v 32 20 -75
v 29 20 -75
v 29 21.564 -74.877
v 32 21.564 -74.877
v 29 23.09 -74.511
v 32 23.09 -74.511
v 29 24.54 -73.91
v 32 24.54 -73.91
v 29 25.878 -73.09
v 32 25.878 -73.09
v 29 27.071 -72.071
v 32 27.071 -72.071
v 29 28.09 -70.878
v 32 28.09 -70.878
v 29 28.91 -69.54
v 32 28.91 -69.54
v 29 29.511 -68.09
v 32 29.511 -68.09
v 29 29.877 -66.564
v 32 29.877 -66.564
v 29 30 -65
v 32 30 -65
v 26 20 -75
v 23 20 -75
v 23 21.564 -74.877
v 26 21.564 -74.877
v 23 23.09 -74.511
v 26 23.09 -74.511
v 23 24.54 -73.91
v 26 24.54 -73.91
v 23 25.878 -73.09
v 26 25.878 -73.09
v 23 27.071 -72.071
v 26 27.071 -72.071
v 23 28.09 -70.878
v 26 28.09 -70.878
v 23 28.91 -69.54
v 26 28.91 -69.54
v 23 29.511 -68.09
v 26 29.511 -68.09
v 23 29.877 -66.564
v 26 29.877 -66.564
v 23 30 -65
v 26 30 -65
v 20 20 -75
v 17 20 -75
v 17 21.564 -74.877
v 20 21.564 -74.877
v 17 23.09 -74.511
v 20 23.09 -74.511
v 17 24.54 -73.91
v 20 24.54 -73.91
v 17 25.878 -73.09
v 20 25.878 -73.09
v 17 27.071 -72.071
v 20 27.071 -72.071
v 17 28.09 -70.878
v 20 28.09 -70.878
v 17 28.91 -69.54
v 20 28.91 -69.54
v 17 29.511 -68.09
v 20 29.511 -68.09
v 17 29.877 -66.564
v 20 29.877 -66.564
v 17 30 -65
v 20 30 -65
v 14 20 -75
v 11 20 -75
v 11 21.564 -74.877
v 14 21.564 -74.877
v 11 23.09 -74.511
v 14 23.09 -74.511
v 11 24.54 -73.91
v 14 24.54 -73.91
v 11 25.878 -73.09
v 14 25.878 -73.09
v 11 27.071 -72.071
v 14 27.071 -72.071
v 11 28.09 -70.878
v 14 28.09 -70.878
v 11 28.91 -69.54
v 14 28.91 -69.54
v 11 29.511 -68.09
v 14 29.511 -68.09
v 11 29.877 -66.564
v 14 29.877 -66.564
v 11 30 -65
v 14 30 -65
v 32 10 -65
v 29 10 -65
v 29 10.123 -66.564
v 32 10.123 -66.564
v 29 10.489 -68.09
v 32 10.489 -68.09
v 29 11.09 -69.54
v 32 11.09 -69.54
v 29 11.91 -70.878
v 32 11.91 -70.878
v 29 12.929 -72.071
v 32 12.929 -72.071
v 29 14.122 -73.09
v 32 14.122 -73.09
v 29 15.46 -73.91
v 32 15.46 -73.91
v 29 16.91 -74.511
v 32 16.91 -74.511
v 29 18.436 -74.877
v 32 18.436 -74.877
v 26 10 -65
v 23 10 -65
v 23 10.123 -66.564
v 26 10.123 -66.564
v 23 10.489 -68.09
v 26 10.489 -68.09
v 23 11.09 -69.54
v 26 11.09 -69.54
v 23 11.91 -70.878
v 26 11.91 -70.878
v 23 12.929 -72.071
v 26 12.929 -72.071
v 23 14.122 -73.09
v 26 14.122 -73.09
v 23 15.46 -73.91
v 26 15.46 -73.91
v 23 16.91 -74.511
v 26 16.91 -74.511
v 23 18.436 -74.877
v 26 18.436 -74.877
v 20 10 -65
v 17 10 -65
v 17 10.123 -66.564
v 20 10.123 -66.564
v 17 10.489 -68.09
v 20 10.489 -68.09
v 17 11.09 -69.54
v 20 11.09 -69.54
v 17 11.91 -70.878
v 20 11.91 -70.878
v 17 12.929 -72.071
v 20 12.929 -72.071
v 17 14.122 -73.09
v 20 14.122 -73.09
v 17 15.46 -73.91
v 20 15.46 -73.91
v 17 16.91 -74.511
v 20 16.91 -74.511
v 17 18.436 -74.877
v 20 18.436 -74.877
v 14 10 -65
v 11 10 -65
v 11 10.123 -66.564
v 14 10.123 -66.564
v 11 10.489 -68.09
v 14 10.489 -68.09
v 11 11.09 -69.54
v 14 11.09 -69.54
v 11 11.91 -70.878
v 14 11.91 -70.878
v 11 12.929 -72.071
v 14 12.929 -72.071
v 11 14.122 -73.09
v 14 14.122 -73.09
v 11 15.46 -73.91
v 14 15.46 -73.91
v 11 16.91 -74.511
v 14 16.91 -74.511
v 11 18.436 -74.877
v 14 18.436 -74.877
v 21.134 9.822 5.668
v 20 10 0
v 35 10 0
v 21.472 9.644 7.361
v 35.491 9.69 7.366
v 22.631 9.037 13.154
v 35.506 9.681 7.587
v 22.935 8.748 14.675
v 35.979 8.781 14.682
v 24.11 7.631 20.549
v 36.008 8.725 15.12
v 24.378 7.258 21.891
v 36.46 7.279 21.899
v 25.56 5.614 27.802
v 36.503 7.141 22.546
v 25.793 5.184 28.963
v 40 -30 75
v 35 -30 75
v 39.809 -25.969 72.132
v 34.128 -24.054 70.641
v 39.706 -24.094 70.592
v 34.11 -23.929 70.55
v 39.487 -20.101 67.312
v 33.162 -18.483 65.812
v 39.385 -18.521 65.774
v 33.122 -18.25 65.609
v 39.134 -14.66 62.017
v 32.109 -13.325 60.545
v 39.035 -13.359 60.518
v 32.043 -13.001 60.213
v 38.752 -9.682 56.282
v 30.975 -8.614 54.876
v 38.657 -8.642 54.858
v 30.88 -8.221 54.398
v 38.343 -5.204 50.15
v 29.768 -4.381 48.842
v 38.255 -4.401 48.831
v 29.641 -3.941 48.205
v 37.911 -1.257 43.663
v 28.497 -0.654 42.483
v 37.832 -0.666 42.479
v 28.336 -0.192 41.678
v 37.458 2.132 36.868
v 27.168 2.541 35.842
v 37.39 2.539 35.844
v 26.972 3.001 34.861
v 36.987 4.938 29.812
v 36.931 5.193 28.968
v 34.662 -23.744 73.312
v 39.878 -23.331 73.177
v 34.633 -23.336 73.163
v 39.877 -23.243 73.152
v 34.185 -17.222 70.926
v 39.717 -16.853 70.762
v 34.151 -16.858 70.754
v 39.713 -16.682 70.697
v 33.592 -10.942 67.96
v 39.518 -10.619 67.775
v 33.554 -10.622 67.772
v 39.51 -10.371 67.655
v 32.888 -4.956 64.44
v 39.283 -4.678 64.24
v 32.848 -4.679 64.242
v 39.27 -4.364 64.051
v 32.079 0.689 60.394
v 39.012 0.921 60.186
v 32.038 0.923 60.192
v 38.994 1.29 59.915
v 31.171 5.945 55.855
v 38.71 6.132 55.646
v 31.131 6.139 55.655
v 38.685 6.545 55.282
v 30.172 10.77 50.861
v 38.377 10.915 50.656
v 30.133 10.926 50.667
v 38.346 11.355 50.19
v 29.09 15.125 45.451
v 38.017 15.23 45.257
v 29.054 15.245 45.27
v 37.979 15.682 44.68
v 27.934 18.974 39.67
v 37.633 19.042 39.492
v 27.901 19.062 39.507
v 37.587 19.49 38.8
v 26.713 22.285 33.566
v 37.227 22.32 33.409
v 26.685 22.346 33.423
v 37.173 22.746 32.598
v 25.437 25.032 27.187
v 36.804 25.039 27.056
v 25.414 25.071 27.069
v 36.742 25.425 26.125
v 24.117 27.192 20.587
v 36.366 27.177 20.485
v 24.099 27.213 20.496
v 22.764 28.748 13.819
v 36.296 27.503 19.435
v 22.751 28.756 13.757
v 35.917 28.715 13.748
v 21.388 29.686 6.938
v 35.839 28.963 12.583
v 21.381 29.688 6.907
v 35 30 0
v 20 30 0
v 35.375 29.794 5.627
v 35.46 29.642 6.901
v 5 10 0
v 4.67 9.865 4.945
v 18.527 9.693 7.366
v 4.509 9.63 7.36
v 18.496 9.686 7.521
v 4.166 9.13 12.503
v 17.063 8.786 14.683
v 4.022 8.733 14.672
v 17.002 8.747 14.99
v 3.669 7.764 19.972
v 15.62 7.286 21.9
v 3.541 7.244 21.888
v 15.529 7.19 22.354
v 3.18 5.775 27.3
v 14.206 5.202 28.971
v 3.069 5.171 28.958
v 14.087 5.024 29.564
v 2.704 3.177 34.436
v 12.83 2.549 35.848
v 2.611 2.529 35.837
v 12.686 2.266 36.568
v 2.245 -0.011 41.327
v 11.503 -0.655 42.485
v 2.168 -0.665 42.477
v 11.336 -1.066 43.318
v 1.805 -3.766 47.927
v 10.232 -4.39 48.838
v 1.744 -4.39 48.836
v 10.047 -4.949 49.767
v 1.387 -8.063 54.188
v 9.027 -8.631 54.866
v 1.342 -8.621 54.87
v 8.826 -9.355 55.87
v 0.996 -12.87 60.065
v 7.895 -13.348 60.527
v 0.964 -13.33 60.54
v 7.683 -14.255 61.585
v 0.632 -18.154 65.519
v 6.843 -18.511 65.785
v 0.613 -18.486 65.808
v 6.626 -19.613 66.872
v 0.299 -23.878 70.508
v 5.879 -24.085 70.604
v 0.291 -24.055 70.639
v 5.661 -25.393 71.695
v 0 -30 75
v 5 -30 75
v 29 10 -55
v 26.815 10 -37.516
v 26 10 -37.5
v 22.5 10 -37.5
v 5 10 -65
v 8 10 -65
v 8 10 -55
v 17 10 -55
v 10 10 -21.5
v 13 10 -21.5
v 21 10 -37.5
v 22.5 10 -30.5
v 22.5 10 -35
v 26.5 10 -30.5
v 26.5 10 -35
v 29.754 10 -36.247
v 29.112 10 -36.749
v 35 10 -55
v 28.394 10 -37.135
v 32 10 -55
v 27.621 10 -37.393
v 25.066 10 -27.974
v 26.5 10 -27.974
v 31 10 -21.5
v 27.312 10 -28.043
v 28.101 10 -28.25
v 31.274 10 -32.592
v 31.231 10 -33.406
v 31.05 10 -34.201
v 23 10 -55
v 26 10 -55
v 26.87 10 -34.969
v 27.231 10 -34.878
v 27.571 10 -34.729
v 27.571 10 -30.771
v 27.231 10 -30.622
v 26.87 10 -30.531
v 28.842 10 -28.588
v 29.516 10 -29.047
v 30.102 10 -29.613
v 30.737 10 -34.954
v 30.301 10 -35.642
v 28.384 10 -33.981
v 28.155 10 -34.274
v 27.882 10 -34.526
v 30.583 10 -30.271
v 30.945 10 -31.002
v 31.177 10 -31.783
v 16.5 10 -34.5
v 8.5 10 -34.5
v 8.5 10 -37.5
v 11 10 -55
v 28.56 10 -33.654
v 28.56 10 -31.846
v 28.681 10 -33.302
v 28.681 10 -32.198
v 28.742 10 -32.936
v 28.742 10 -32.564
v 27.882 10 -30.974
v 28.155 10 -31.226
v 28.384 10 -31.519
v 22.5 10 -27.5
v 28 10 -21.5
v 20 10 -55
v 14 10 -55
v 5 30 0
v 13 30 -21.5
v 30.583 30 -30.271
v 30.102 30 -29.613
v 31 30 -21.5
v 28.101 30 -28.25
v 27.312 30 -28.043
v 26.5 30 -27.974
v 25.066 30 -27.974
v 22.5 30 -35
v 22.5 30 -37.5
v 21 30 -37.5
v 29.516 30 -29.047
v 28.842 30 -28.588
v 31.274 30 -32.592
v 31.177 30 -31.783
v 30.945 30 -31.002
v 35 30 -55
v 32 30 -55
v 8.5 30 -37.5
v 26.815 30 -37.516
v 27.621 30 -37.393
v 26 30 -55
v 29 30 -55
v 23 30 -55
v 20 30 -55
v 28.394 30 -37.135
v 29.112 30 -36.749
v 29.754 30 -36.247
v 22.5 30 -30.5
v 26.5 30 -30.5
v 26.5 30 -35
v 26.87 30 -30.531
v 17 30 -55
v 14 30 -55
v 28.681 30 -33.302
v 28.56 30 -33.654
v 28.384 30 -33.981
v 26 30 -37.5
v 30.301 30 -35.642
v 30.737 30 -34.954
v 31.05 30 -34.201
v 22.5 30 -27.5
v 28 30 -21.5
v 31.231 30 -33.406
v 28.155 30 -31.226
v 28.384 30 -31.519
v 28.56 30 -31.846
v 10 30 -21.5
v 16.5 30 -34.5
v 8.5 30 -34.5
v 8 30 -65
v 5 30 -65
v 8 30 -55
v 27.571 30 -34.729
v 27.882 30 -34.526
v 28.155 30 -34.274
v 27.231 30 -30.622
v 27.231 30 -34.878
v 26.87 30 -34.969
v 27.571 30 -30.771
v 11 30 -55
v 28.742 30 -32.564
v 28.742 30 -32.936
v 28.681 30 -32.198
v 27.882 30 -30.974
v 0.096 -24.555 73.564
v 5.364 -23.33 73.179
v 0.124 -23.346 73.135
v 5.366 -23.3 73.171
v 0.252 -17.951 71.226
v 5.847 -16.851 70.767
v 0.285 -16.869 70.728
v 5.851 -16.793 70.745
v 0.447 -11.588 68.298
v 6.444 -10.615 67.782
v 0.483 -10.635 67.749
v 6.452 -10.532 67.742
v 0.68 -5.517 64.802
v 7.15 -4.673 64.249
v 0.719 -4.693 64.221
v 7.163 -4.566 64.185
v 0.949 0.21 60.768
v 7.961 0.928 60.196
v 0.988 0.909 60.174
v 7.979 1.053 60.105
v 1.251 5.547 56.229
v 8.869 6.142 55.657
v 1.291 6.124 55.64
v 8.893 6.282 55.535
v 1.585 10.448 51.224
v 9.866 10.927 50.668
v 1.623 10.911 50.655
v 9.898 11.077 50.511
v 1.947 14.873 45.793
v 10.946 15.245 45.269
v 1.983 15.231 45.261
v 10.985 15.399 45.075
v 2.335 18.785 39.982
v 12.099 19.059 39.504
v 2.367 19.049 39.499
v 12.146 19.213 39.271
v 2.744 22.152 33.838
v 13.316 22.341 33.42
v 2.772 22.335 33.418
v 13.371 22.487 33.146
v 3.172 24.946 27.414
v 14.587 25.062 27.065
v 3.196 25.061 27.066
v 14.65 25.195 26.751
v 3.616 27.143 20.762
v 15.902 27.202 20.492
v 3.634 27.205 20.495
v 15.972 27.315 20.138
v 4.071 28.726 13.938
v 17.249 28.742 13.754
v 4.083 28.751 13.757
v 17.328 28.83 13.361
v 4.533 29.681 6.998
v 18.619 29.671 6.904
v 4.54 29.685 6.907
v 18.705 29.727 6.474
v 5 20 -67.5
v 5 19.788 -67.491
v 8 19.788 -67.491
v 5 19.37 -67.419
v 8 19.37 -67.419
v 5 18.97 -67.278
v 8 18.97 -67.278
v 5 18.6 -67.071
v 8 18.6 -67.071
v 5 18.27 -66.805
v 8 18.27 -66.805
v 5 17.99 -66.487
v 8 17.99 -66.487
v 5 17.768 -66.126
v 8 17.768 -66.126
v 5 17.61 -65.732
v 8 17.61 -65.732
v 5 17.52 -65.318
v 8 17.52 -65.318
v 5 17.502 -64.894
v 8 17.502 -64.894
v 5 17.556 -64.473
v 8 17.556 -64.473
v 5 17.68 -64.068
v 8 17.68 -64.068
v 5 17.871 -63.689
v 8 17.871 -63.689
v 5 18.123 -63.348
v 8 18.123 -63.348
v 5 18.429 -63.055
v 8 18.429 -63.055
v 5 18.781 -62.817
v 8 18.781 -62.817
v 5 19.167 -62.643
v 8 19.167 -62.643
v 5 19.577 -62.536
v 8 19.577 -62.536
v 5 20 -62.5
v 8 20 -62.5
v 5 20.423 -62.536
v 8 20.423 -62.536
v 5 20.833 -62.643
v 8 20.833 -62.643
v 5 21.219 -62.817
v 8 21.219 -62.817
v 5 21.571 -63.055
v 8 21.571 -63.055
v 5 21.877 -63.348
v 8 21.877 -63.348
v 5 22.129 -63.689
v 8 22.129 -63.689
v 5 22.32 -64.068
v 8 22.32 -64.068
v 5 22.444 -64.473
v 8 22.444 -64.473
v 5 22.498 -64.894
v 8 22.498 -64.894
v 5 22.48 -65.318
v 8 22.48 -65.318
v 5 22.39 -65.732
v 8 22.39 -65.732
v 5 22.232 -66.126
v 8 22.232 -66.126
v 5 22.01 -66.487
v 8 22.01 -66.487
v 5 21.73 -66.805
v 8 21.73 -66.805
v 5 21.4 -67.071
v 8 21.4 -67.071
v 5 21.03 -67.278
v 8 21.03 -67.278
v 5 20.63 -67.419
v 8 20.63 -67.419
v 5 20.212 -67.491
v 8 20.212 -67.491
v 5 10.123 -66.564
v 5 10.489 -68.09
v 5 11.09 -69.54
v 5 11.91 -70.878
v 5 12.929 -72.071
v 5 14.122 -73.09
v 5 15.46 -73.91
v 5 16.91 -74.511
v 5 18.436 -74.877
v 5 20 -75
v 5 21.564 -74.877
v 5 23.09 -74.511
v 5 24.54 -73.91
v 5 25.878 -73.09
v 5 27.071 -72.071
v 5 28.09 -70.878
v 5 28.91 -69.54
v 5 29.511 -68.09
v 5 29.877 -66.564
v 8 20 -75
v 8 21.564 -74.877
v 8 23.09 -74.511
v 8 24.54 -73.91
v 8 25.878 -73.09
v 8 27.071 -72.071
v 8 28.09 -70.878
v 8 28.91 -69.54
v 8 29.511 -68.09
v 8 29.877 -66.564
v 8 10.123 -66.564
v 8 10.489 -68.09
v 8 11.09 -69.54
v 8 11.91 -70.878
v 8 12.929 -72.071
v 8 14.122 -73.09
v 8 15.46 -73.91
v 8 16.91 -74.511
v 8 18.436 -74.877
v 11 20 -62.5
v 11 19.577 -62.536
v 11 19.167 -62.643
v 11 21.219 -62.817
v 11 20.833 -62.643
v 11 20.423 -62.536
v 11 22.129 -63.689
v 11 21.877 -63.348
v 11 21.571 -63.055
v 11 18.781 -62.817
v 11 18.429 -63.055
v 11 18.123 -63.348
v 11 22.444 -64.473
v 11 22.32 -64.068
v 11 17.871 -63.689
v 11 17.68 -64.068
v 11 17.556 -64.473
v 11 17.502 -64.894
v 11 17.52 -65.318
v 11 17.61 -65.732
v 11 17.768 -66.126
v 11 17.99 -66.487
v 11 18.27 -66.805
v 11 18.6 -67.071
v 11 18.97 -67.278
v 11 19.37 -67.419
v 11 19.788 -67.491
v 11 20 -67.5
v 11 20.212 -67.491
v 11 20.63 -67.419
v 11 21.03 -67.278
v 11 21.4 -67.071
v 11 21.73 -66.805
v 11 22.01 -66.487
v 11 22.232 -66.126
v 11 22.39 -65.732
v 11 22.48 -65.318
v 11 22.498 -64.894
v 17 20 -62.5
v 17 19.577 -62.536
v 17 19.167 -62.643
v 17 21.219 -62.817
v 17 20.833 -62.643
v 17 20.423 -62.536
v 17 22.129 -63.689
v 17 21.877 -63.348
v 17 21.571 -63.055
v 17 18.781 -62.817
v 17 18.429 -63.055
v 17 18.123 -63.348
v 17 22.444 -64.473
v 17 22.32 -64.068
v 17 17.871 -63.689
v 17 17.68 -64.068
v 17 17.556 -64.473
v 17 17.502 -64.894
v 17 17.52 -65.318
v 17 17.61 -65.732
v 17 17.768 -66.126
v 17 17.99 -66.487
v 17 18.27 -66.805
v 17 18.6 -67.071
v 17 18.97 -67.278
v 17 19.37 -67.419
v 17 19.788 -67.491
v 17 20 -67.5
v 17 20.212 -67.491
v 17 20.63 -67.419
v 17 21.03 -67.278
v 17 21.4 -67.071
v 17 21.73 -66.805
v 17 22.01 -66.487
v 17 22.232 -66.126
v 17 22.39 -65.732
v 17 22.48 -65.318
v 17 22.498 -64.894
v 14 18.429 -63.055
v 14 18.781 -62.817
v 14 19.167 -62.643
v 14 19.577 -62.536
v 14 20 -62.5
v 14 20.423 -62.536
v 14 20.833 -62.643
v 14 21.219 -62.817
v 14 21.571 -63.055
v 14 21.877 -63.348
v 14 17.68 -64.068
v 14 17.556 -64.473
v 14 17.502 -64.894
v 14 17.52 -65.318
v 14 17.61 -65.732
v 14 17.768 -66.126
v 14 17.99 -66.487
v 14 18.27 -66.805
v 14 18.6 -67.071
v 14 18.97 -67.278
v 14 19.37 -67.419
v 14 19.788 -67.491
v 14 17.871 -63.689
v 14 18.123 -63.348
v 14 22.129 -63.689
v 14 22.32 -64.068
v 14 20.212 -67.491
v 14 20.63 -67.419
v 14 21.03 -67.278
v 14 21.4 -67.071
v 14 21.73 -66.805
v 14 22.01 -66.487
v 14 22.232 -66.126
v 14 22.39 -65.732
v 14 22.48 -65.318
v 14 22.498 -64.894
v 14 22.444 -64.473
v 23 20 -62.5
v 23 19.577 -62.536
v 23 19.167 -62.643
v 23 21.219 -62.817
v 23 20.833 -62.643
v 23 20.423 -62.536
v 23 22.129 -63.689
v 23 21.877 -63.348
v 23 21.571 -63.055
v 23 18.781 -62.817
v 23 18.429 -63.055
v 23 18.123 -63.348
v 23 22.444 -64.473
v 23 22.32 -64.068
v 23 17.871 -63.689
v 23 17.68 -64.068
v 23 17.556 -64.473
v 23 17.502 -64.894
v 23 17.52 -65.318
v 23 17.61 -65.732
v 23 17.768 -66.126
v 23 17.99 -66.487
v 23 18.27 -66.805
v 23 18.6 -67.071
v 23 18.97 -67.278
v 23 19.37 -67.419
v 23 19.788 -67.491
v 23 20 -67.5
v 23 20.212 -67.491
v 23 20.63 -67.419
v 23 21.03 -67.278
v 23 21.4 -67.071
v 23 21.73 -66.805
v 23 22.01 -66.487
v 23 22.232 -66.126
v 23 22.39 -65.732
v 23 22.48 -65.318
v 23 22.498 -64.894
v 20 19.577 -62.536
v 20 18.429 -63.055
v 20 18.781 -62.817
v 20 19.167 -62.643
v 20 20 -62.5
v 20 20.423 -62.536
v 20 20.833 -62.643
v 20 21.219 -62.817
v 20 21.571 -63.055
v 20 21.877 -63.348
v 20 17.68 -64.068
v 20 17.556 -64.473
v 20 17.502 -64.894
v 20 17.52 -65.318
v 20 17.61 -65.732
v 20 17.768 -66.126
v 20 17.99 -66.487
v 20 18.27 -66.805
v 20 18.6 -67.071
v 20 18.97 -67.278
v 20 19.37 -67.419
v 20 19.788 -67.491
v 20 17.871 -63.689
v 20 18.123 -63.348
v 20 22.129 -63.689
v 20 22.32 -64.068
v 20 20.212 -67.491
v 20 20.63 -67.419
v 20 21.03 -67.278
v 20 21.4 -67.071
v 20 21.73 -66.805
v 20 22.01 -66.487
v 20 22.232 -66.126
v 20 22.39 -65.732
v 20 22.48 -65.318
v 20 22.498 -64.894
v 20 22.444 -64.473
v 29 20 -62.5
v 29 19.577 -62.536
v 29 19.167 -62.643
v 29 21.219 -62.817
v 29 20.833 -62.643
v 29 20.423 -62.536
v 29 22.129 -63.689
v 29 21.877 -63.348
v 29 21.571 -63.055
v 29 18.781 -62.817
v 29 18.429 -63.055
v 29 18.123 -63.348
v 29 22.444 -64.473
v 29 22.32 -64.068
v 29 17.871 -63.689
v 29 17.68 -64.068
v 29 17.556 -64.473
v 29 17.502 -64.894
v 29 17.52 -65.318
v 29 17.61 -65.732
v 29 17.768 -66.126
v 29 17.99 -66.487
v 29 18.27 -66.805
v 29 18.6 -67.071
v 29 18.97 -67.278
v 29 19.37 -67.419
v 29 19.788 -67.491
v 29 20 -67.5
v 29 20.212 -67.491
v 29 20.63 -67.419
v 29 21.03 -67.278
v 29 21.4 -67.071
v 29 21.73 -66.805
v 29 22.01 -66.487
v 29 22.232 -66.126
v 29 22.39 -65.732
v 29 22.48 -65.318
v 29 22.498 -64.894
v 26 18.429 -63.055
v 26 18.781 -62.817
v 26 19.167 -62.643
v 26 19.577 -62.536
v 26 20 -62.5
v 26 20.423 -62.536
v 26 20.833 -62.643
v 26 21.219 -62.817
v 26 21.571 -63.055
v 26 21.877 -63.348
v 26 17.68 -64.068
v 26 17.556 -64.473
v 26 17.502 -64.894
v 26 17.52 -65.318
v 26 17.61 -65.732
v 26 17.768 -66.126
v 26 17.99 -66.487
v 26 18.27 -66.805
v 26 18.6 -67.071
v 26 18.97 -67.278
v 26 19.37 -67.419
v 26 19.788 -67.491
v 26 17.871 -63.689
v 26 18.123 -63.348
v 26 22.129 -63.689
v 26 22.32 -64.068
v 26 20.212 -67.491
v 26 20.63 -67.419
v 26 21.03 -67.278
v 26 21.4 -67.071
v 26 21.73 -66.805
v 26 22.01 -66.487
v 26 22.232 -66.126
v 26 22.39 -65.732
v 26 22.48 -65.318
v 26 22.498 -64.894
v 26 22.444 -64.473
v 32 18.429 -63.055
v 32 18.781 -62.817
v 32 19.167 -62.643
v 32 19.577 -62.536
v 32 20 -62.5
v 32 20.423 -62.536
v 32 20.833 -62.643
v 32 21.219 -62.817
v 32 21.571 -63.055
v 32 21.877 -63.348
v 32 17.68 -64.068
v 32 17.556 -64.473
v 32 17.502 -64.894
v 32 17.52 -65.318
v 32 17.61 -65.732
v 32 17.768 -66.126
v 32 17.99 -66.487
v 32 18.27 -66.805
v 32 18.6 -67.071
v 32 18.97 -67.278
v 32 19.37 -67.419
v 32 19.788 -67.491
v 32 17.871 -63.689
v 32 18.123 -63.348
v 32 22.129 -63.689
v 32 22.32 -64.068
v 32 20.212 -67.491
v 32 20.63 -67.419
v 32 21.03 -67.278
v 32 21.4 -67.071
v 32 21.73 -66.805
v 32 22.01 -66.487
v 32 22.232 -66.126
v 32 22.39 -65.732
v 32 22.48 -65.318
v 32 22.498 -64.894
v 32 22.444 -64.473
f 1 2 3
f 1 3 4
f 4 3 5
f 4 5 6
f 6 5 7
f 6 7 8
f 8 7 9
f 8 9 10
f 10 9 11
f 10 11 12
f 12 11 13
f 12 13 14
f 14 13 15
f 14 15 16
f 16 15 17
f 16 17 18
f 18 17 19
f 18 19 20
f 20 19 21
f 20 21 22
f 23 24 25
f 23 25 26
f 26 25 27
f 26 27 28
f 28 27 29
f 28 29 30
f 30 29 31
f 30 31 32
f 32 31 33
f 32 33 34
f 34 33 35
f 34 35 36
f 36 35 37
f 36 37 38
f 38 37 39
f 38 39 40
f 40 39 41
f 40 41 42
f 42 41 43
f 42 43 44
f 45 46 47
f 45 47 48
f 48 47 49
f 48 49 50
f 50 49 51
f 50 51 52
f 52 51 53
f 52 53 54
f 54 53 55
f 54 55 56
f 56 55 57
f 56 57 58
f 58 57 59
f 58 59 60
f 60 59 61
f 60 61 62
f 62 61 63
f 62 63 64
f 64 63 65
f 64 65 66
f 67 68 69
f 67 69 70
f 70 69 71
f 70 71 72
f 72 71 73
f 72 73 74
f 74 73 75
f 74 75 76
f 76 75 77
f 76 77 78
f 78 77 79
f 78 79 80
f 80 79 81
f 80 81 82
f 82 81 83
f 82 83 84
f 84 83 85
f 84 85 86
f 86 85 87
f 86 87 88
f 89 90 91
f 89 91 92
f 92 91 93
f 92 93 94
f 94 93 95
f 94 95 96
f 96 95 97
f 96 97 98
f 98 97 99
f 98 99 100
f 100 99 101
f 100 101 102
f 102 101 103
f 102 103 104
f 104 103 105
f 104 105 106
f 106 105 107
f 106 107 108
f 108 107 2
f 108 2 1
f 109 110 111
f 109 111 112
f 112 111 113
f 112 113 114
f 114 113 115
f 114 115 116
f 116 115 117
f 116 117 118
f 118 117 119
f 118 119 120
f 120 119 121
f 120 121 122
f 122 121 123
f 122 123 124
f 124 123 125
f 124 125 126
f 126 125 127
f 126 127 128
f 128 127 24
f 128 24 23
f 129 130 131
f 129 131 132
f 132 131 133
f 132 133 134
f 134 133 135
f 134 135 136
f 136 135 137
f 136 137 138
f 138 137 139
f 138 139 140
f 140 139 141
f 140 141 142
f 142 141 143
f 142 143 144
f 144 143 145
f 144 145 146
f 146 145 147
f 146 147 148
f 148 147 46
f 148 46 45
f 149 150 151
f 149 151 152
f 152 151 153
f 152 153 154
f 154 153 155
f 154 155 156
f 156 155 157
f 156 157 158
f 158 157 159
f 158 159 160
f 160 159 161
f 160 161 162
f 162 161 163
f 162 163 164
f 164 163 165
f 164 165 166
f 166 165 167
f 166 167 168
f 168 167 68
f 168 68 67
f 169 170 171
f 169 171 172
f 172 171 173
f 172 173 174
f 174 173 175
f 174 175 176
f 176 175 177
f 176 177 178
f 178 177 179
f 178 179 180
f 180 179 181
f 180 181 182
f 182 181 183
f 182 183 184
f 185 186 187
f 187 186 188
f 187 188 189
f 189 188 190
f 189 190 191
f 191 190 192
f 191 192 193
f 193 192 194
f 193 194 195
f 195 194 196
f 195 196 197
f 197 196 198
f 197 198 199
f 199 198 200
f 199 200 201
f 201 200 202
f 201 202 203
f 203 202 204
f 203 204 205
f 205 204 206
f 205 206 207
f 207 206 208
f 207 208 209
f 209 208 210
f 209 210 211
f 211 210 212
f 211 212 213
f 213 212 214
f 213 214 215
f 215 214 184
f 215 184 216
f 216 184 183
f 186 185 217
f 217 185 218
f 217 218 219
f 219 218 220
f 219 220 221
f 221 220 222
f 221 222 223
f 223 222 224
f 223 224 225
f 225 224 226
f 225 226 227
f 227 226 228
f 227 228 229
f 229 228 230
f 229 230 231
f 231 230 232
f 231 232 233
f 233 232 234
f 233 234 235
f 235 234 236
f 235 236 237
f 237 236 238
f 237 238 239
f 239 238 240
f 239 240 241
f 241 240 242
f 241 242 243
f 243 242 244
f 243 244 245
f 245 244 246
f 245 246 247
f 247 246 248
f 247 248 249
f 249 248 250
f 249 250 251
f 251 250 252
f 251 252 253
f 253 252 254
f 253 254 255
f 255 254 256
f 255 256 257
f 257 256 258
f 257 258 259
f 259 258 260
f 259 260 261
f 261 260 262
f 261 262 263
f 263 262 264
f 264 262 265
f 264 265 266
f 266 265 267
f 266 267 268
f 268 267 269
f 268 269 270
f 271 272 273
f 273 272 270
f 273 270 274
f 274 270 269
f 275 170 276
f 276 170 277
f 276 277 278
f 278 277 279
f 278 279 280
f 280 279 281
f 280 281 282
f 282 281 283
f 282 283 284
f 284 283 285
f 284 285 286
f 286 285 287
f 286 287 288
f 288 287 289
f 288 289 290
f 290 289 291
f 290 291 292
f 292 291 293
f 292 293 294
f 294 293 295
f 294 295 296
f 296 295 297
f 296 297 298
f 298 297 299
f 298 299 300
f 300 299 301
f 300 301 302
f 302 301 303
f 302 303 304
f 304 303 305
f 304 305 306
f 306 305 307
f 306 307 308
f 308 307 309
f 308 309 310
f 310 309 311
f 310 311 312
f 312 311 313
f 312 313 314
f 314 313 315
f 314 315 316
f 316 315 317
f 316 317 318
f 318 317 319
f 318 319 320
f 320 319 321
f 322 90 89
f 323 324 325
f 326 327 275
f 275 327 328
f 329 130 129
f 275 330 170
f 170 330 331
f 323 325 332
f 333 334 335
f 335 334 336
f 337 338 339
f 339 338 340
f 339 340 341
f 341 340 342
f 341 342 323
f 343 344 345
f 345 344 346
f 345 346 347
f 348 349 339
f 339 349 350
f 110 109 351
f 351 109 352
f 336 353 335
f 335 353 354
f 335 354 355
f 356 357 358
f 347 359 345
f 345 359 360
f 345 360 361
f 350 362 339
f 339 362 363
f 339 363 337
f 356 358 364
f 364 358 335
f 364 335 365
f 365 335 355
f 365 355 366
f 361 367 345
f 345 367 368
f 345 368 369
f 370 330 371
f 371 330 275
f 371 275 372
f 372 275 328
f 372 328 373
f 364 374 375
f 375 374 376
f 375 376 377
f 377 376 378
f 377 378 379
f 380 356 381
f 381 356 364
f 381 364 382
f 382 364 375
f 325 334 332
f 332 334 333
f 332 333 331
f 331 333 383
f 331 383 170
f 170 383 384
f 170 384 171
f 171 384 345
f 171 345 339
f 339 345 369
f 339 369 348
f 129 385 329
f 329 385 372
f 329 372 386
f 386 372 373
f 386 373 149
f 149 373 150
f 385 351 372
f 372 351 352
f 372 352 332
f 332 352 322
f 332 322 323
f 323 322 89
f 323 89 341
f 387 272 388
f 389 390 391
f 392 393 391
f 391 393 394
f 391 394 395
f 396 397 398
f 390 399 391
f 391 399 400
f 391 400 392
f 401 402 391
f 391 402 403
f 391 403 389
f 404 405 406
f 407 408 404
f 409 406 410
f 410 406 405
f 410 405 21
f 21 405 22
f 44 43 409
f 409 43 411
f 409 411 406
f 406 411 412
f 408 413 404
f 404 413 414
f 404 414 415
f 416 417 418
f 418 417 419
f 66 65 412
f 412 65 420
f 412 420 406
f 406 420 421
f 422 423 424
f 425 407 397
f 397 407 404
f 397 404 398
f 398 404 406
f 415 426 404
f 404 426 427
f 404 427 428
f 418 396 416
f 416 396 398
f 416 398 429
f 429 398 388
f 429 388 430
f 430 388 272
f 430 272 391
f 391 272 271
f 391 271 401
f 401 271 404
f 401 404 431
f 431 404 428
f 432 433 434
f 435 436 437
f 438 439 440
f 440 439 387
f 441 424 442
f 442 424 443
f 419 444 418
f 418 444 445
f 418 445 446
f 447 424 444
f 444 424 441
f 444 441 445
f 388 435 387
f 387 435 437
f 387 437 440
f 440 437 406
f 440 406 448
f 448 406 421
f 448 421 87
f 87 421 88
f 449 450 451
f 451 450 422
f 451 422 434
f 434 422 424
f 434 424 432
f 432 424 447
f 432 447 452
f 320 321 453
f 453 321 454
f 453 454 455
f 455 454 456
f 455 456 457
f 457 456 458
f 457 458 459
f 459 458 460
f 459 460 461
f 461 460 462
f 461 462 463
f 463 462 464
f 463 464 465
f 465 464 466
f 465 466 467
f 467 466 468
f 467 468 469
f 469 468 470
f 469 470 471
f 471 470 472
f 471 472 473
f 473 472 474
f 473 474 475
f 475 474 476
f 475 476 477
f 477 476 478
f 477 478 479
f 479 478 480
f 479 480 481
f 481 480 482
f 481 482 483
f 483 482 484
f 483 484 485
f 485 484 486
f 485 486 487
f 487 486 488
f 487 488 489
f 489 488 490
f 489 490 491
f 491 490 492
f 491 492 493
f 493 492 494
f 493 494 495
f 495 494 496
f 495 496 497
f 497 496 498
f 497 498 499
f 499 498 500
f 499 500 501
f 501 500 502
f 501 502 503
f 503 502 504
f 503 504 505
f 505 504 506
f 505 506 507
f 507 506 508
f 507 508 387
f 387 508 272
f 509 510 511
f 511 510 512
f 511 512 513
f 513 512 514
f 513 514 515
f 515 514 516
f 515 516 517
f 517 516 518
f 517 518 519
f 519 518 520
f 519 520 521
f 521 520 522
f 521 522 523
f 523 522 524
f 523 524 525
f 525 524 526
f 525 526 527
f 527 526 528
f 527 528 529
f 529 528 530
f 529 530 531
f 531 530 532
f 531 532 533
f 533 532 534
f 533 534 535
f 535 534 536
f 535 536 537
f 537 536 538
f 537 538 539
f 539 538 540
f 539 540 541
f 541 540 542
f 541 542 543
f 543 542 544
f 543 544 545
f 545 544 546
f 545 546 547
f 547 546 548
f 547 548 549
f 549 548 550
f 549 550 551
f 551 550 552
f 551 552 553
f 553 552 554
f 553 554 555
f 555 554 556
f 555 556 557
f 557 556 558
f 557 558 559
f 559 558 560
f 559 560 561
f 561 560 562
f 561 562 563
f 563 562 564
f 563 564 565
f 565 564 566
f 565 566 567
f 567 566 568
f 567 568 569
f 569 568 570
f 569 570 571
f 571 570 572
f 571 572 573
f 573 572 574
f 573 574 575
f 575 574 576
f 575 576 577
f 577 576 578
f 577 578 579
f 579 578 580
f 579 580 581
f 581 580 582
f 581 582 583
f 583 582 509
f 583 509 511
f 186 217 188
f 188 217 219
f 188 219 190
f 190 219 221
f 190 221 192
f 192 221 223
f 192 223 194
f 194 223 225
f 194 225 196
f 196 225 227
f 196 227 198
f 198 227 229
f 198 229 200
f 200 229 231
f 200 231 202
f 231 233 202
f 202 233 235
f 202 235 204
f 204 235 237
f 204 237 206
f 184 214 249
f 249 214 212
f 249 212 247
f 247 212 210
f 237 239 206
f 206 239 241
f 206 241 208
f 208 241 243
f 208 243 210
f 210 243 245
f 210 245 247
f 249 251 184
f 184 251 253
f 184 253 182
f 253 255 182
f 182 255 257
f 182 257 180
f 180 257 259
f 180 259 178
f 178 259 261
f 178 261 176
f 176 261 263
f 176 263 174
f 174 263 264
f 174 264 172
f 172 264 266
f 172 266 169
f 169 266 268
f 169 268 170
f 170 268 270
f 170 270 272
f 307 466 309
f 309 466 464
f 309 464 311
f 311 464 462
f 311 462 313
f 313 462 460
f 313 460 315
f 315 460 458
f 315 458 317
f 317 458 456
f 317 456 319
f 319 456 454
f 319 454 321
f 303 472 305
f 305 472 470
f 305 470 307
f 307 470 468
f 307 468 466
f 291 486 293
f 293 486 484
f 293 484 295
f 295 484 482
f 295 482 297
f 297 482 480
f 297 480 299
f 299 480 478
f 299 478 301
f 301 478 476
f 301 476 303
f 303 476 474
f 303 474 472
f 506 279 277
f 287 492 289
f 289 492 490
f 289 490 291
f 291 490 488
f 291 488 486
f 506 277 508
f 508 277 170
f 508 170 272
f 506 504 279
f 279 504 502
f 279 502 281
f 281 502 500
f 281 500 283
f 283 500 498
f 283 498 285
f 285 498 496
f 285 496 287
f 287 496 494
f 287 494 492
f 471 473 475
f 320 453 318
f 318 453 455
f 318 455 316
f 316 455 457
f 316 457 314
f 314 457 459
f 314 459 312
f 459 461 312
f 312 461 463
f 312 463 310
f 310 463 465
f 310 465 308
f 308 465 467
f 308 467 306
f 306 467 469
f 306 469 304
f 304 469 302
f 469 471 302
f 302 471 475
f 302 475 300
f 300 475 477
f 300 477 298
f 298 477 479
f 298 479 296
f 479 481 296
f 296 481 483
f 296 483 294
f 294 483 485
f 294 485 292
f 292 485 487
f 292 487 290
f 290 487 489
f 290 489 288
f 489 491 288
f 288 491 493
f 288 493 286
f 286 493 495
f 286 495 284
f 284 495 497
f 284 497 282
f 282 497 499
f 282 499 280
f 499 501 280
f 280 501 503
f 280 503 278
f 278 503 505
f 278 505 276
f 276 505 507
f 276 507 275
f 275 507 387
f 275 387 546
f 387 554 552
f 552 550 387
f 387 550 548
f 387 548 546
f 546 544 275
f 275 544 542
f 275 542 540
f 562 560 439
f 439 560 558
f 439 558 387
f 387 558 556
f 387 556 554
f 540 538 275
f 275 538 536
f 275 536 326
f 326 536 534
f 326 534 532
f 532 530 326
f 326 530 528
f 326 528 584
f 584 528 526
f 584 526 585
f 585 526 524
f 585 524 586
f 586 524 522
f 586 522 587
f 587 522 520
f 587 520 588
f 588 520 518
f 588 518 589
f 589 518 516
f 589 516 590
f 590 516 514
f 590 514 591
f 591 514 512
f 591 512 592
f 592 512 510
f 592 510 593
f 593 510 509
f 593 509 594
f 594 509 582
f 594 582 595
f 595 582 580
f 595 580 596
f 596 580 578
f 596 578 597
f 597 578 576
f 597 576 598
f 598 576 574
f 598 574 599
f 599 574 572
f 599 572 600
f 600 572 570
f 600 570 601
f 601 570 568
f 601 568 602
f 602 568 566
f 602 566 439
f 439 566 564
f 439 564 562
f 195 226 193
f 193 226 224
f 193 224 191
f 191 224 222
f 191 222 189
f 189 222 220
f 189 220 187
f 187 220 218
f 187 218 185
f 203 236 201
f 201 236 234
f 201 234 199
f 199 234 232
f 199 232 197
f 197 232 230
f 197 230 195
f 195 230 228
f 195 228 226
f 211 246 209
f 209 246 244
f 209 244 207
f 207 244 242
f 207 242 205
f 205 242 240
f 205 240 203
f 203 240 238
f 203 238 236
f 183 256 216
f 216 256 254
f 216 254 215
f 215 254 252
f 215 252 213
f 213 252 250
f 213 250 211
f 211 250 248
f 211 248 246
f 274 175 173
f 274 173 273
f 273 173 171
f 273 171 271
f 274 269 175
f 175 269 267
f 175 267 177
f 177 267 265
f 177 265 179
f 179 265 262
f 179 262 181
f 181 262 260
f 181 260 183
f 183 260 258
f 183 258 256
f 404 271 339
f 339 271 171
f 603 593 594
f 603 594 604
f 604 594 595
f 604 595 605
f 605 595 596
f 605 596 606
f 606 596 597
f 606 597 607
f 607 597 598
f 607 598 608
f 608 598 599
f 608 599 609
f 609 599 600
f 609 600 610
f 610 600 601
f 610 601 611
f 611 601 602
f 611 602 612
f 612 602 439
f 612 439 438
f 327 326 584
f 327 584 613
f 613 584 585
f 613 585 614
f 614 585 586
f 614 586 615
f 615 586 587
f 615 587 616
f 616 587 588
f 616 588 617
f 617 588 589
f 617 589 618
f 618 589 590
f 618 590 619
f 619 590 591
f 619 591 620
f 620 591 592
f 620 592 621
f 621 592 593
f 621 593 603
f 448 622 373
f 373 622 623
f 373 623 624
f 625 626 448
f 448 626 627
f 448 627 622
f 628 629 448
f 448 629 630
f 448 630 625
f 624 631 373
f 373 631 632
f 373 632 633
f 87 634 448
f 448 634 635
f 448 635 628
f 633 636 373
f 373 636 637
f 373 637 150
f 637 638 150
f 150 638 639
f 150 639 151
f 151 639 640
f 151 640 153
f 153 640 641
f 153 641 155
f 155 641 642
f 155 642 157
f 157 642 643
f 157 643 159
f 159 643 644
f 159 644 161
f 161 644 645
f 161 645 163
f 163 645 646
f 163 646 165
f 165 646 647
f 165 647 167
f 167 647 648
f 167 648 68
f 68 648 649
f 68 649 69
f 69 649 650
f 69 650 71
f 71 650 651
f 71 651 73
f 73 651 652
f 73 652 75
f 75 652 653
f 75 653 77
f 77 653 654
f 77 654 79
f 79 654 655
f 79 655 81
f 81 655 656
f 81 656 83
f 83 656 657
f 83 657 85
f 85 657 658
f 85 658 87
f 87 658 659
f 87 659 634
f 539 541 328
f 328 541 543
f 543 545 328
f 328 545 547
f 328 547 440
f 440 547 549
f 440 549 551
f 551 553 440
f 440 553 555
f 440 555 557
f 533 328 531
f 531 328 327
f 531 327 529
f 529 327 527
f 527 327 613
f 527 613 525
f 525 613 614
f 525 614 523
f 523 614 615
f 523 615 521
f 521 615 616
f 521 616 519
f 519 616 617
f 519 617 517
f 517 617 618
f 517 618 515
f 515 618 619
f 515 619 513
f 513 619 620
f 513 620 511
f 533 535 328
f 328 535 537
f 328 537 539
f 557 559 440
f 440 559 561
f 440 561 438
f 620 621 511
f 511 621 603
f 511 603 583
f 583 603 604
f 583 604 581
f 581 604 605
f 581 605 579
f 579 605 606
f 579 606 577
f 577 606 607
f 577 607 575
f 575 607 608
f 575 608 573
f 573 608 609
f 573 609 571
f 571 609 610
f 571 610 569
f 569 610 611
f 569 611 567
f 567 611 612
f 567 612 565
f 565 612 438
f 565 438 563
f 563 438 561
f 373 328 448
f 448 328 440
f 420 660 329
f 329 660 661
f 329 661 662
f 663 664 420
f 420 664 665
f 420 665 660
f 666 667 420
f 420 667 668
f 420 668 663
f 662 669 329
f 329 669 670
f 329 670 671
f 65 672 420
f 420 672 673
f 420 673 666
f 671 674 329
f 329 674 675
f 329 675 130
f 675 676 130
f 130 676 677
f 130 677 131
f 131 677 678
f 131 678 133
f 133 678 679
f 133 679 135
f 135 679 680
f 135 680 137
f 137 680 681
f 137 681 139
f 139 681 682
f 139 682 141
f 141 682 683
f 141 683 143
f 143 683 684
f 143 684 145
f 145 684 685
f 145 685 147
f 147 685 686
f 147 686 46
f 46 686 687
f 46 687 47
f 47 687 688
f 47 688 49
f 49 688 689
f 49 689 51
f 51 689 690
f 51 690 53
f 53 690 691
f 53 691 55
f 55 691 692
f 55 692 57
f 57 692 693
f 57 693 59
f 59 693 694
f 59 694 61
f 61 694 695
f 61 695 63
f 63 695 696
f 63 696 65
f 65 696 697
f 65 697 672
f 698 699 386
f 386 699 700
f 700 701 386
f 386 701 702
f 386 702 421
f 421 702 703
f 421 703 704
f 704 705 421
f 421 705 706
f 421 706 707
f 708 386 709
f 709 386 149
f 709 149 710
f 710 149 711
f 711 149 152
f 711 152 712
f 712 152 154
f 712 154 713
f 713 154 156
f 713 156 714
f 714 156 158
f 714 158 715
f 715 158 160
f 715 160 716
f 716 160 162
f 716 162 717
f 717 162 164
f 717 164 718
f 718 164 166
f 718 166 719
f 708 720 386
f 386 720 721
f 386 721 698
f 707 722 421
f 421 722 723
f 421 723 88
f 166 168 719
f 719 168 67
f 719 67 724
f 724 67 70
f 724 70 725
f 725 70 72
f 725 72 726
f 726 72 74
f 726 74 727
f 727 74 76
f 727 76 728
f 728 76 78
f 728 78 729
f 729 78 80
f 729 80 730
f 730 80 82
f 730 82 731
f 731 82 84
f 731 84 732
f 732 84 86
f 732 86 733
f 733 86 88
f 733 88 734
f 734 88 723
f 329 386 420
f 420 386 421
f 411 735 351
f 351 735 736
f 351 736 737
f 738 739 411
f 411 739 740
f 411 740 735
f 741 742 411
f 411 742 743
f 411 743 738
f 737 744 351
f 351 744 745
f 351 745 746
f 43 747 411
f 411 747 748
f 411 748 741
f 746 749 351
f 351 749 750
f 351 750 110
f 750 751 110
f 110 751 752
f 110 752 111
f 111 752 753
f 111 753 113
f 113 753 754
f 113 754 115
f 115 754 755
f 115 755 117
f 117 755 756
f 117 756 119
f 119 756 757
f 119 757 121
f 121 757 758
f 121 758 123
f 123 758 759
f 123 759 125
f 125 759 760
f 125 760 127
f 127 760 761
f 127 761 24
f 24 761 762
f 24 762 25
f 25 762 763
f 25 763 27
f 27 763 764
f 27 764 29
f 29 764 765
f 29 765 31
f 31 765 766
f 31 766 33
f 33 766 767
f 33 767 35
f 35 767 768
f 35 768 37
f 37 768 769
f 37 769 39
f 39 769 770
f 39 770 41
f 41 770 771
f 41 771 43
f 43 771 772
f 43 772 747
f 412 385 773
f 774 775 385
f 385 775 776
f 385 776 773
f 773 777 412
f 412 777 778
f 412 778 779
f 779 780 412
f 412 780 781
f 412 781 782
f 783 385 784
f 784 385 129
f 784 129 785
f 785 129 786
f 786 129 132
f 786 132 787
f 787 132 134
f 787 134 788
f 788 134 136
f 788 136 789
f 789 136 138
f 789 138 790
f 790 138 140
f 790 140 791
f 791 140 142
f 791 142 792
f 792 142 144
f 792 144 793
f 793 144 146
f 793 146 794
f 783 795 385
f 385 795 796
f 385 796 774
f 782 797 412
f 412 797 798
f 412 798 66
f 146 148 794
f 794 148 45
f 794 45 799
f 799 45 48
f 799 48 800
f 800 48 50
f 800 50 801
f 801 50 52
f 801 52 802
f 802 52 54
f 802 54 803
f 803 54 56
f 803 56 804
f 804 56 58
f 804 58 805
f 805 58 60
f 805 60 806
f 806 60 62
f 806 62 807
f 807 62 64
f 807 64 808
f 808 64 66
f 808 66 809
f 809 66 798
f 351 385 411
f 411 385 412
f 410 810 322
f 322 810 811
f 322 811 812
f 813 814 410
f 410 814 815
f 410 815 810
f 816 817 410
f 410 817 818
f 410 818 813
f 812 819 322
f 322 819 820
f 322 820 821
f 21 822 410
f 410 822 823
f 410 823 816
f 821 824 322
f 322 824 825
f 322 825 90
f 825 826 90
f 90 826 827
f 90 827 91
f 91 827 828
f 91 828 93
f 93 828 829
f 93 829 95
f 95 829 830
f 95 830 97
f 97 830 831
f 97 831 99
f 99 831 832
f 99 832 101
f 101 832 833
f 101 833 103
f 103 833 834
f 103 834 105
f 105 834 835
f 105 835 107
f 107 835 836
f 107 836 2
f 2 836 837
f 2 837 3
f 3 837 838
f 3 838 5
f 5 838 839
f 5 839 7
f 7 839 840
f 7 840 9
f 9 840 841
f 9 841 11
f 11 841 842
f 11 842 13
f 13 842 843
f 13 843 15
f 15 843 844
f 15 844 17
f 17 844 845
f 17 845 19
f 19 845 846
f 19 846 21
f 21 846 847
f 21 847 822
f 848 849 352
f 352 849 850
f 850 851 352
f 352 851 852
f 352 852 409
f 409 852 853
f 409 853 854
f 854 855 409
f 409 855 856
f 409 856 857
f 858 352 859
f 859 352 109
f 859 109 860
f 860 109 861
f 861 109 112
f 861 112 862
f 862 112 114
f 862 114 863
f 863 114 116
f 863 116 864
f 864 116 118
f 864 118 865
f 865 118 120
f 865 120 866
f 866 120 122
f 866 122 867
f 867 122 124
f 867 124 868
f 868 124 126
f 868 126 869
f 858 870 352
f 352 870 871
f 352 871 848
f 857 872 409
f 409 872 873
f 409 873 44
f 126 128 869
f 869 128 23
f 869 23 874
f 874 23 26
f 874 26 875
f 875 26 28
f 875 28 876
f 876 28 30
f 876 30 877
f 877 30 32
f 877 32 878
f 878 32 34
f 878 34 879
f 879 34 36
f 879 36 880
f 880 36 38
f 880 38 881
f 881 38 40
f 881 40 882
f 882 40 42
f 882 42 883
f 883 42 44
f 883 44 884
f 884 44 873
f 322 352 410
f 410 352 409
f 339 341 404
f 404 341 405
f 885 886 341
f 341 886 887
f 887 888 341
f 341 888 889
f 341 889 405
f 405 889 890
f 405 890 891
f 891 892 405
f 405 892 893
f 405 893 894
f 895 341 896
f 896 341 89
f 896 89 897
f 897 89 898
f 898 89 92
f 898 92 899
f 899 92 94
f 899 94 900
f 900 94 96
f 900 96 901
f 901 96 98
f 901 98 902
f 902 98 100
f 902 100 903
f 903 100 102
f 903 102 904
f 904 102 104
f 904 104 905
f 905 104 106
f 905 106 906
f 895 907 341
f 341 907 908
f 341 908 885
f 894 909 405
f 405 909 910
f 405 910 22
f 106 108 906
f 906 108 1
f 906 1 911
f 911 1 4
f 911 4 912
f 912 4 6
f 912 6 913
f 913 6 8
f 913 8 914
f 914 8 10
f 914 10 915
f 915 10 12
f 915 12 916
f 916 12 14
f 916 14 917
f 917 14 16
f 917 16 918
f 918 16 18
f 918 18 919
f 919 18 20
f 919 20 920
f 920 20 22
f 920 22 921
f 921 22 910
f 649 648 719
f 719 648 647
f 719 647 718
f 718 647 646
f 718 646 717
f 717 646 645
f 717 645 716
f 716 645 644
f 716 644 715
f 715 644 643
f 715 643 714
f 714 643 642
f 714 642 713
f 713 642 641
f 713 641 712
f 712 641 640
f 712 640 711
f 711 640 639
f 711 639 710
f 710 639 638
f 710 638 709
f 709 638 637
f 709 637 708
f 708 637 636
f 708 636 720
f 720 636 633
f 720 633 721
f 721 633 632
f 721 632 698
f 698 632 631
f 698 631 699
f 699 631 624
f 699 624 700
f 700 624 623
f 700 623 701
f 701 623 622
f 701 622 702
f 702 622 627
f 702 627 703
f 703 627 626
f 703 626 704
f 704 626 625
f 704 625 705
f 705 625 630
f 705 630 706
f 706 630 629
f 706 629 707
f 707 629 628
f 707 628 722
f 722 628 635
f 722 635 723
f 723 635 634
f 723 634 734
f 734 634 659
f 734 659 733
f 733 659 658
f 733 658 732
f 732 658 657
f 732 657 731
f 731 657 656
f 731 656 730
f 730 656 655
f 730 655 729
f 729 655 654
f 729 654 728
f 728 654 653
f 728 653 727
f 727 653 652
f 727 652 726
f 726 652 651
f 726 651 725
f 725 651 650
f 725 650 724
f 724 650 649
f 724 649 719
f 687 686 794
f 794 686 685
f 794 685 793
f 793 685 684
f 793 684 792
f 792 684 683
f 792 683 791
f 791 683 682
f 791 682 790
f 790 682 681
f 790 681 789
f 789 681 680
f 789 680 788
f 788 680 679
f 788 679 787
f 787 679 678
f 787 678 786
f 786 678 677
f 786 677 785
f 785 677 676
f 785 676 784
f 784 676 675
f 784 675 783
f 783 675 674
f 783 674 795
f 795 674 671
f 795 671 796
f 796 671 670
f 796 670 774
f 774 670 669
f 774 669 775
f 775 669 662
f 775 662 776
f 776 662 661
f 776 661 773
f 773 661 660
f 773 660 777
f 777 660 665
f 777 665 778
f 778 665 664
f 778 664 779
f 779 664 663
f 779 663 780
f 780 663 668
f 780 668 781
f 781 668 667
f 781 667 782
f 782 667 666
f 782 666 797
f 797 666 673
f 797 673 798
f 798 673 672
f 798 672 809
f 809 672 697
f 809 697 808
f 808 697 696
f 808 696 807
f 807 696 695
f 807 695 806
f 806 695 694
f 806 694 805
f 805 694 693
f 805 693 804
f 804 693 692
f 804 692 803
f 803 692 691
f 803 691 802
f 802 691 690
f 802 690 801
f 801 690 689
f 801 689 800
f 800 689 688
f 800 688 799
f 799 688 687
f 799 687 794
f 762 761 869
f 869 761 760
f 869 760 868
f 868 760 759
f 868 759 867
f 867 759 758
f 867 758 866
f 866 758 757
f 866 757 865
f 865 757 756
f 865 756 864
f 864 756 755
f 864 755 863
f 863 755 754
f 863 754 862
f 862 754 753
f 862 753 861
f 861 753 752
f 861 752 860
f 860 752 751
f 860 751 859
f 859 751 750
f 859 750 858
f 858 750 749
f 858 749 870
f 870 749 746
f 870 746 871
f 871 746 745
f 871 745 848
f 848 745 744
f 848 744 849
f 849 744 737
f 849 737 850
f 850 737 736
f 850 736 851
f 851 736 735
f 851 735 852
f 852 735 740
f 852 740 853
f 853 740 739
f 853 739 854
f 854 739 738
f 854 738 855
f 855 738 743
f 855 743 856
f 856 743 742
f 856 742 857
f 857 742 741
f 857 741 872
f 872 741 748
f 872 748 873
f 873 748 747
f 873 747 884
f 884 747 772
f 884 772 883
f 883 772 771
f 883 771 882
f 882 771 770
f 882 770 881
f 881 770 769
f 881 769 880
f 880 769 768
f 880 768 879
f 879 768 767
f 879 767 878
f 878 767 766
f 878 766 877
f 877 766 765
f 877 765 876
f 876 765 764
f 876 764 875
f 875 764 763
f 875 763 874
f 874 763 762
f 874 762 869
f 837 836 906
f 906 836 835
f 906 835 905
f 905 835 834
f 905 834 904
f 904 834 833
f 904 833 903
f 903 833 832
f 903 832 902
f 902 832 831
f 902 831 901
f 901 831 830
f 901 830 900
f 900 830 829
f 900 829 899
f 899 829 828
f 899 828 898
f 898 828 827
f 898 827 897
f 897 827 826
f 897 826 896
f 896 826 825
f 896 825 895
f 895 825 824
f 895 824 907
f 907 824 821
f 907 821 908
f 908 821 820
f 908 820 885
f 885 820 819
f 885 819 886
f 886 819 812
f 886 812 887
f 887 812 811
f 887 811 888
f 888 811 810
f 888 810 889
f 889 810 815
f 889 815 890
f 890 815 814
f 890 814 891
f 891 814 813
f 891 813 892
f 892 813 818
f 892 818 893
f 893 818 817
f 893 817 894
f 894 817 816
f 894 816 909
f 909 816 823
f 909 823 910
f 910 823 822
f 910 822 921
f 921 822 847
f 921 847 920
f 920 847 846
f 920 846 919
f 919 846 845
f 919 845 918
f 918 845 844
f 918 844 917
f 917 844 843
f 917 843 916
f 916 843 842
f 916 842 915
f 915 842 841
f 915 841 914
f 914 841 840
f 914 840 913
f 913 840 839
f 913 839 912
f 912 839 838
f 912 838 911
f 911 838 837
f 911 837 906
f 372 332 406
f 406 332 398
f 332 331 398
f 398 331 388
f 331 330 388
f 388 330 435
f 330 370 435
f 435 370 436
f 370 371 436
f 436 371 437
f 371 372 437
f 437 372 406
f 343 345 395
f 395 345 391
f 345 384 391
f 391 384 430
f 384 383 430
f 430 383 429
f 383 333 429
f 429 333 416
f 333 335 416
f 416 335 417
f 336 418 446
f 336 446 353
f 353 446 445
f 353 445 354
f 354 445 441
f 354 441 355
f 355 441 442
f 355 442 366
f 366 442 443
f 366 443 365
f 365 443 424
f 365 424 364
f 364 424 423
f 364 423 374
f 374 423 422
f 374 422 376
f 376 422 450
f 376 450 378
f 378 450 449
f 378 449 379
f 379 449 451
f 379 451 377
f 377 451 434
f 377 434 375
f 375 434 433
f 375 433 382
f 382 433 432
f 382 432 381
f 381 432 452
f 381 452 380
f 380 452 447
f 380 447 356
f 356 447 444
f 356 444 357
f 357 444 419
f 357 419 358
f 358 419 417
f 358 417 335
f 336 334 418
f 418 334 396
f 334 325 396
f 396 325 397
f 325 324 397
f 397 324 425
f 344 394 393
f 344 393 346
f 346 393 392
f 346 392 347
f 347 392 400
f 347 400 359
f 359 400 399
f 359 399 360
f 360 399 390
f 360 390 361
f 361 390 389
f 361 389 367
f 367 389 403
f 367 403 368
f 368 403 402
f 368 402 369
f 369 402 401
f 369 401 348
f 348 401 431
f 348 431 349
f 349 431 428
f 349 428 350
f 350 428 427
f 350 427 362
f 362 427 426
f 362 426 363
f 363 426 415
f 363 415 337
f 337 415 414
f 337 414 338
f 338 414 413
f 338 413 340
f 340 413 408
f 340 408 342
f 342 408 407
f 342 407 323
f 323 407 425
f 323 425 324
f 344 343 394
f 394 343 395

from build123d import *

# Parameters (mm, degrees)
ESQUISSE1_R             = 2.5
BOSS_EXTRU_1_DEPTH      = 40
ENL_V_MAT_EXTRU_1_DEPTH = 60
CONG_1_R                = 10
ENL_V_MAT_EXTRU_2_DEPTH = 20
ENL_V_MAT_EXTRU_3_DEPTH = 20


with BuildPart() as part:
    # Esquisse1 → Boss.-Extru.1 (new body)
    with BuildSketch(Plane(origin=(0, 0, 0), x_dir=(0, 0, -1), z_dir=(1, 0, 0))):
        with BuildLine():
            Line((0, 10), (75, 10))
            Line((75, 10), (75, 30))
            Line((75, 30), (0, 30))
            ThreePointArc((0, 30), (-48.023431781, 13.154289726), (-75, -30))
            ThreePointArc((-75, -30), (-42.5, -0.625), (0, 10))
        make_face()
        with Locations((65, 20)):
            Circle(ESQUISSE1_R, mode=Mode.SUBTRACT)
    extrude(amount=BOSS_EXTRU_1_DEPTH)

    # Esquisse2 → Enlèv. mat.-Extru.1 (cut)
    with BuildSketch(Plane(origin=(0, 30, 0), x_dir=(1, 0, 0), z_dir=(0, 1, 0))):
        Polygon((20, 0), (5, -75), (35, -75), align=None)
        Polygon((0, 75), (5, 75), (5, 0), (0, -75), align=None)
        Polygon((40, 75), (35, 75), (35, 0), (40, -75), align=None)
    extrude(amount=-ENL_V_MAT_EXTRU_1_DEPTH, mode=Mode.SUBTRACT)

    # Congé1
    cong_1_edges = [part.edges().sort_by_distance(p)[0] for p in [
        (20, 10, -75),
        (20, 30, -75),
    ]]
    fillet(cong_1_edges, radius=CONG_1_R - 0.0001)  # a hair under: the kernel refuses the full size

    # Esquisse3 → Enlèv. mat.-Extru.2 (cut)
    with BuildSketch(Plane(origin=(0, 30, 0), x_dir=(1, 0, 0), z_dir=(0, 1, 0))):
        Polygon((35, 82), (35, 55), (32, 55), (32, 80), (29, 80), (29, 55), (26, 55), (26, 80), (23, 80), (23, 55), (20, 55), (20, 80), (17, 80), (17, 55), (14, 55), (14, 80), (11, 80), (11, 55), (8, 55), (8, 82), align=None)
    extrude(amount=-ENL_V_MAT_EXTRU_2_DEPTH, mode=Mode.SUBTRACT)

    # Esquisse4 → Enlèv. mat.-Extru.3 (cut)
    with BuildSketch(Plane(origin=(0, 30, 0), x_dir=(1, 0, 0), z_dir=(0, 1, 0))):
        Polygon((8.5, 37.5), (8.5, 34.5), (16.5, 34.5), (10, 21.5), (13, 21.5), (21, 37.5), align=None)
        with BuildLine():
            Line((31, 21.5), (28, 21.5))
            Line((28, 21.5), (22.5, 27.5))
            Line((22.5, 27.5), (22.5, 30.5))
            Line((22.5, 30.5), (26.5, 30.5))
            ThreePointArc((26.5, 30.5), (28.75, 32.75), (26.5, 35))
            Line((26.5, 35), (22.5, 35))
            Line((22.5, 35), (22.5, 37.5))
            Line((22.5, 37.5), (26, 37.5))
            ThreePointArc((26, 37.5), (31.269677958, 33.000344118), (26.5, 27.973756706))
            Line((26.5, 27.973756706), (25.065723019, 27.973756706))
            Line((25.065723019, 27.973756706), (31, 21.5))
        make_face()
    extrude(amount=-ENL_V_MAT_EXTRU_3_DEPTH, mode=Mode.SUBTRACT)


solid = part.part
